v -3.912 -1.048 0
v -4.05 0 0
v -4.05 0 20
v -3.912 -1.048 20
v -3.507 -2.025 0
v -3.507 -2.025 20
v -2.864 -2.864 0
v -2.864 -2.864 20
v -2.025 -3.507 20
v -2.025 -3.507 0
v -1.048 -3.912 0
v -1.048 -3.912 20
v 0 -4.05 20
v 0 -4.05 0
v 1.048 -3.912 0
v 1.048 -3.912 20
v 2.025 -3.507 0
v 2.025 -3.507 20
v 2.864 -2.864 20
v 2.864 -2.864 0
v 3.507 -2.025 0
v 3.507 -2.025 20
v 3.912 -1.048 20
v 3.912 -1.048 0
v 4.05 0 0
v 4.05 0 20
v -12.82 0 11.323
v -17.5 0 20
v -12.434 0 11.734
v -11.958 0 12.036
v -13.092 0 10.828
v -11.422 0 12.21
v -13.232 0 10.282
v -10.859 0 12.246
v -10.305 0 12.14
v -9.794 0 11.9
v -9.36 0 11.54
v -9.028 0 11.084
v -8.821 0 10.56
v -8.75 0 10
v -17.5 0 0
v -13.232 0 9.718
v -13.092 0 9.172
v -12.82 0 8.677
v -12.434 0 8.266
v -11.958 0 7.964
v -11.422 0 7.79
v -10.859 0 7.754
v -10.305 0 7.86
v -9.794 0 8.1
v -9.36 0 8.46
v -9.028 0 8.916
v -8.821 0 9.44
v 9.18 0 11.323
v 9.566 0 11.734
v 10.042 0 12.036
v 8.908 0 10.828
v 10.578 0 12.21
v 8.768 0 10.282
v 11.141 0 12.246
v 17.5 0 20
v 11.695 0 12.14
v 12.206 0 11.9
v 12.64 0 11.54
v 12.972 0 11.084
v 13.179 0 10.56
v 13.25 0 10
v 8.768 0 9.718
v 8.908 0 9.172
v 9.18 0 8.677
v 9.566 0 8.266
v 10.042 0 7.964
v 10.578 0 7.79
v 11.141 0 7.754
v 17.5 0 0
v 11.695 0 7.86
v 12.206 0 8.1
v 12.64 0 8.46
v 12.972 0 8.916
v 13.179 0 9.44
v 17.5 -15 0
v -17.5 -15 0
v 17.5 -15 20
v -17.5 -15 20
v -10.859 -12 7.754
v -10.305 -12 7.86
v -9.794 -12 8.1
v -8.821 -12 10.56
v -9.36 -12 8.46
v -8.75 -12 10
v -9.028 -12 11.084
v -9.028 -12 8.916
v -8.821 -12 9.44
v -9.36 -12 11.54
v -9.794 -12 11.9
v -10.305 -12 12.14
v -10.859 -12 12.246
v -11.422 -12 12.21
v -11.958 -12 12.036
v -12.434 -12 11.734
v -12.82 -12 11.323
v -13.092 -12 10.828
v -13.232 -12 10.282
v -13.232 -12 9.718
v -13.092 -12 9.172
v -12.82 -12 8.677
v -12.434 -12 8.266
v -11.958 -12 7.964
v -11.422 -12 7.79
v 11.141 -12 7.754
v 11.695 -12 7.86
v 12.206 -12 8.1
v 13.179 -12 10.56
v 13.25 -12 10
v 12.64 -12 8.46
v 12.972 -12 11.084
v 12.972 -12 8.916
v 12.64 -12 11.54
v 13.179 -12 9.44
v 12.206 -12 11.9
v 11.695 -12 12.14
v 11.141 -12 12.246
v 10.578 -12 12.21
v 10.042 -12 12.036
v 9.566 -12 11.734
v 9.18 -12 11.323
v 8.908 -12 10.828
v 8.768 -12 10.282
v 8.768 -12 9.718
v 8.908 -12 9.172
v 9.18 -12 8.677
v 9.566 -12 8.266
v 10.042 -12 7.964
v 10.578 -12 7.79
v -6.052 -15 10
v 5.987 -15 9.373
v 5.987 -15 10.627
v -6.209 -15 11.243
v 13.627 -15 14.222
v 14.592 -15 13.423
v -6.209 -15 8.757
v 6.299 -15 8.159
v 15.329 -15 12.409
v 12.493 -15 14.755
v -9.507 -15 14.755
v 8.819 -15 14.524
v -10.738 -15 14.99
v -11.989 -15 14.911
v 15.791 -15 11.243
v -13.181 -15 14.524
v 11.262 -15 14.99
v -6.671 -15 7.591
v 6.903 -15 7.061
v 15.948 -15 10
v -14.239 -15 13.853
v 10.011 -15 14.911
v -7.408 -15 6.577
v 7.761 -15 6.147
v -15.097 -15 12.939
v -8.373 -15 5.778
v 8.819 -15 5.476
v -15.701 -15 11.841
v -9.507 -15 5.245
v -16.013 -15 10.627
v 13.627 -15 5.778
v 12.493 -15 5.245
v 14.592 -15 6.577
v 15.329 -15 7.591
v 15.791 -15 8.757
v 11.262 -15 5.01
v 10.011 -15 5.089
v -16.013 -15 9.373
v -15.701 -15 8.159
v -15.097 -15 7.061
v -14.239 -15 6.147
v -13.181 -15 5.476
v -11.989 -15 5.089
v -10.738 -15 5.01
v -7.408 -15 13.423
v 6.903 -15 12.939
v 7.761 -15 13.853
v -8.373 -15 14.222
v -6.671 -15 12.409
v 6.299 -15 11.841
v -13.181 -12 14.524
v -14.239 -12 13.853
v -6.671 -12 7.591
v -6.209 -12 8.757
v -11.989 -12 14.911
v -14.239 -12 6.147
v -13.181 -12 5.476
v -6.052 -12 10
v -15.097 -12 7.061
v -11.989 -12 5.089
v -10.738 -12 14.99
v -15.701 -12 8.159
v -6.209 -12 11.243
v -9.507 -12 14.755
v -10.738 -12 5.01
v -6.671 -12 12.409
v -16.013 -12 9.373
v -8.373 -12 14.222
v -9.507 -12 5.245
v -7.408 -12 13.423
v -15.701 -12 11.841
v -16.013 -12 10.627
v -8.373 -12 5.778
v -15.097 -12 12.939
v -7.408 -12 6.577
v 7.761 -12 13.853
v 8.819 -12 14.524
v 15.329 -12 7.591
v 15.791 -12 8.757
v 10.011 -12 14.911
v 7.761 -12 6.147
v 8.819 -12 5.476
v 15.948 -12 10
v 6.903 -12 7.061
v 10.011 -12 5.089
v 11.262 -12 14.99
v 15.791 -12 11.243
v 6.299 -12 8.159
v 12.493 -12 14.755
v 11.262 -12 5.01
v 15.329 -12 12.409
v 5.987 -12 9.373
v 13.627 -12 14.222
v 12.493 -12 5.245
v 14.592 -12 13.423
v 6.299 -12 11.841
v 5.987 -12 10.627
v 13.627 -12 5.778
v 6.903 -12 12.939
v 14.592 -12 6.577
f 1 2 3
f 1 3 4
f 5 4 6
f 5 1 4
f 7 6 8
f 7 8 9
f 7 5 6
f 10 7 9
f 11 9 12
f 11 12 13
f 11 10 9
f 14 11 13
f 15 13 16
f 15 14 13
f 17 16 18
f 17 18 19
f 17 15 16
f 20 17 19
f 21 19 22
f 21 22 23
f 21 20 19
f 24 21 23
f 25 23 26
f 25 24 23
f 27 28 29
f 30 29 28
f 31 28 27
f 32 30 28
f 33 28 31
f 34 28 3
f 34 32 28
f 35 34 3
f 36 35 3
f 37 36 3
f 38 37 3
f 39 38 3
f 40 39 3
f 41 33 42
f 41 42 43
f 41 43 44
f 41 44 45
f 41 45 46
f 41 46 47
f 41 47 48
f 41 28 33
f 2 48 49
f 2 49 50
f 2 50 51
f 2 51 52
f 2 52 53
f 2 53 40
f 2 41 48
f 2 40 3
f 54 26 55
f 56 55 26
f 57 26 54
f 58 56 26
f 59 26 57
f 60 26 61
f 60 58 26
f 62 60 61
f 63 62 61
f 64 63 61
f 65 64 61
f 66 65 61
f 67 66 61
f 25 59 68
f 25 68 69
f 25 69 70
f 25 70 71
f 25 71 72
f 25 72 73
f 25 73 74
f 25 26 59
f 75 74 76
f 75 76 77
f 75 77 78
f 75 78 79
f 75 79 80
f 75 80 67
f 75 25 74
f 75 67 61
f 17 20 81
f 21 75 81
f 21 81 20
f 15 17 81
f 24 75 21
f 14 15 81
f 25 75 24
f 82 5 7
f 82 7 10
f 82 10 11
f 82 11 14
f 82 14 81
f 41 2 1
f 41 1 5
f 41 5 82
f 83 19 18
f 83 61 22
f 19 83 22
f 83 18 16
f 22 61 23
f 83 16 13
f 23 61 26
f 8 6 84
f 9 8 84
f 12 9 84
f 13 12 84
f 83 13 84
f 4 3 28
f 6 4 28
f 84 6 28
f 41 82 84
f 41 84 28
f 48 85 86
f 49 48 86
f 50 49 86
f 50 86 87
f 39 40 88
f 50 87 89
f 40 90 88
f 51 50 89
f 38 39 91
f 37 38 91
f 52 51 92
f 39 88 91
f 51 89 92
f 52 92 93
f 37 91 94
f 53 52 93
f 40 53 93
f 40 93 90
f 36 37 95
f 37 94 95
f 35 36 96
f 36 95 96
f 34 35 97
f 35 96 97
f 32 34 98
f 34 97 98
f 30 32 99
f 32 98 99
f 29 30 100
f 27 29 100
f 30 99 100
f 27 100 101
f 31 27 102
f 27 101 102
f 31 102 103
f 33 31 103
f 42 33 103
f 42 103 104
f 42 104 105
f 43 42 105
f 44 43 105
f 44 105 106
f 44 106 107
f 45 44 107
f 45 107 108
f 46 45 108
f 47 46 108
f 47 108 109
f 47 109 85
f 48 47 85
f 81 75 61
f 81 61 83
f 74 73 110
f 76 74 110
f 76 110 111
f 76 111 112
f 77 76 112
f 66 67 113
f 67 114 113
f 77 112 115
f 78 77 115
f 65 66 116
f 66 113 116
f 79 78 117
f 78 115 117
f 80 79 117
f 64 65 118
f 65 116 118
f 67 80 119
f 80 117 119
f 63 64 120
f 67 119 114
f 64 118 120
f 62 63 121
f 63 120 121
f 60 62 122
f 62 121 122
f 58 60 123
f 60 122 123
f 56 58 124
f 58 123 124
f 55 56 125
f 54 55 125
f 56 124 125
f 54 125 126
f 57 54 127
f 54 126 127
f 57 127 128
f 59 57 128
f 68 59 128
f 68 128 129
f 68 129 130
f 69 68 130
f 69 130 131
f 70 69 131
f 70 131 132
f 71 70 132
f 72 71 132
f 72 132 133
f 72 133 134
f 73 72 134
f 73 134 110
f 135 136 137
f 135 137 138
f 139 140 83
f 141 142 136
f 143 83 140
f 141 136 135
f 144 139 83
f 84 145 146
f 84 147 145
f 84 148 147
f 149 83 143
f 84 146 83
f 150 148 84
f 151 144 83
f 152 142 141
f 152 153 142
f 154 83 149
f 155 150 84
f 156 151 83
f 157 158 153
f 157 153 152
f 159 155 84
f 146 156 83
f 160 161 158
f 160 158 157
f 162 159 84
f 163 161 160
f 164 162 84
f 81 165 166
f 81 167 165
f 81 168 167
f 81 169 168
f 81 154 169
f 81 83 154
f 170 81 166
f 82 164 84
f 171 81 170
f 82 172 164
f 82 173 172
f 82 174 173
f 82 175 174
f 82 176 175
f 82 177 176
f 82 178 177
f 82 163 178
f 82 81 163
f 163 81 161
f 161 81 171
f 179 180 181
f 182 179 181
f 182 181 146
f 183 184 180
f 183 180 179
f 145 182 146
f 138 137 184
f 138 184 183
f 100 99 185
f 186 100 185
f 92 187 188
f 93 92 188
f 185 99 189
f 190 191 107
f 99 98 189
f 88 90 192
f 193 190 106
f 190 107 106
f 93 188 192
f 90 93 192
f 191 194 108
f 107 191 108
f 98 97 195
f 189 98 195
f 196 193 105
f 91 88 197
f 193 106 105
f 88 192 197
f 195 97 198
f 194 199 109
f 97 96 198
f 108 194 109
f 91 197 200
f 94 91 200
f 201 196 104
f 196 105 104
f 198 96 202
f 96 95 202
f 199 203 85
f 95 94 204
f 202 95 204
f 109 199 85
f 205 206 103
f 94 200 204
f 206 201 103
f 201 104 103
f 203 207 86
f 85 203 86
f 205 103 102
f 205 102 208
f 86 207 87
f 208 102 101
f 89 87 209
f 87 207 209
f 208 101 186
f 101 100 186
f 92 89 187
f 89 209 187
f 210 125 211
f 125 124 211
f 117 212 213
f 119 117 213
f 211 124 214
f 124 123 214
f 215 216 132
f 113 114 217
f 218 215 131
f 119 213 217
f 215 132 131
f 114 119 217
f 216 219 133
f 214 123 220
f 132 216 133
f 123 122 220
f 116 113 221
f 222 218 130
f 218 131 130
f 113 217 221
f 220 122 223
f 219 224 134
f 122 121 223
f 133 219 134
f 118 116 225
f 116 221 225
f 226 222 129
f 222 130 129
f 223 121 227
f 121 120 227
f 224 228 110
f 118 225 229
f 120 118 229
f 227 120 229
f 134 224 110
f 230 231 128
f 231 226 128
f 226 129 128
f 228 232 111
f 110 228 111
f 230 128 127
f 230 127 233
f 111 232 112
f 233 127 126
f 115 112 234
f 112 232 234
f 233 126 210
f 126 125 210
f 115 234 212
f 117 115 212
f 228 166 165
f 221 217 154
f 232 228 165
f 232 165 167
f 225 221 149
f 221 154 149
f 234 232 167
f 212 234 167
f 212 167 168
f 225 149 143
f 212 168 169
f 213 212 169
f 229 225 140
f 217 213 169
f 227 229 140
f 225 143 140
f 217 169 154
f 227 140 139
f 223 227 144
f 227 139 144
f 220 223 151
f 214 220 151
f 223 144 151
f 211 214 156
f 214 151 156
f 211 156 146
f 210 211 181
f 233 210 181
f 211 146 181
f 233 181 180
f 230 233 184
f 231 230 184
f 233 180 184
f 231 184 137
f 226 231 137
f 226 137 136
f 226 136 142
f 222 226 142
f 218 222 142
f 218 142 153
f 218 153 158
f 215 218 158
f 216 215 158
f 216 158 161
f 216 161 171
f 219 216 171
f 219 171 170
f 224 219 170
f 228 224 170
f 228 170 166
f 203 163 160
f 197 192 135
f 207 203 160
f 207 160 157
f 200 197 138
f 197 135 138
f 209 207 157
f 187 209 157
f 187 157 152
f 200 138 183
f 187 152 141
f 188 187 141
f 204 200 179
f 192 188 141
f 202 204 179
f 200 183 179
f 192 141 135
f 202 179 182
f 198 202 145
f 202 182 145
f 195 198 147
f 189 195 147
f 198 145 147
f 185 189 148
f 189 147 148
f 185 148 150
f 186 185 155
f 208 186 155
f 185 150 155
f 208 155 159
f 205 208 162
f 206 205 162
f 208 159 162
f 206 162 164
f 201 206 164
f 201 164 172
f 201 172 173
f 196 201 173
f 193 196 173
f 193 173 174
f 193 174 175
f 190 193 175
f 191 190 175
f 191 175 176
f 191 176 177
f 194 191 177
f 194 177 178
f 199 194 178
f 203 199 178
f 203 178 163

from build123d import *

# Parameters (mm, degrees)
PAD_DEPTH       = 20
SKETCH001_R     = 2.25
POCKET_DEPTH    = 15.001
SKETCH002_R     = 5
POCKET001_DEPTH = 3


with BuildPart() as part:
    # Sketch → Pad (new body)
    with BuildSketch(Plane.XY):
        with BuildLine():
            ThreePointArc((-4.05, 0), (0, -4.05), (4.05, 0))
            Line((4.05, 0), (17.5, 0))
            Line((17.5, 0), (17.5, -15))
            Line((17.5, -15), (-17.5, -15))
            Line((-17.5, -15), (-17.5, 0))
            Line((-17.5, 0), (-4.05, 0))
        make_face()
    extrude(amount=PAD_DEPTH)

    # Sketch001 → Pocket (cut, through all)
    with BuildSketch(Plane.XZ.offset(15)):
        with Locations((-11, 10)):
            Circle(SKETCH001_R)
        with Locations((11, 10)):
            Circle(SKETCH001_R)
    extrude(amount=-POCKET_DEPTH, mode=Mode.SUBTRACT)

    # Sketch002 → Pocket001 (cut)
    with BuildSketch(Plane.XZ.offset(15)):
        with Locations((-11.052364, 10)):
            Circle(SKETCH002_R)
        with Locations((10.947636, 10)):
            Circle(SKETCH002_R)
    extrude(amount=-POCKET001_DEPTH, mode=Mode.SUBTRACT)


solid = part.part
